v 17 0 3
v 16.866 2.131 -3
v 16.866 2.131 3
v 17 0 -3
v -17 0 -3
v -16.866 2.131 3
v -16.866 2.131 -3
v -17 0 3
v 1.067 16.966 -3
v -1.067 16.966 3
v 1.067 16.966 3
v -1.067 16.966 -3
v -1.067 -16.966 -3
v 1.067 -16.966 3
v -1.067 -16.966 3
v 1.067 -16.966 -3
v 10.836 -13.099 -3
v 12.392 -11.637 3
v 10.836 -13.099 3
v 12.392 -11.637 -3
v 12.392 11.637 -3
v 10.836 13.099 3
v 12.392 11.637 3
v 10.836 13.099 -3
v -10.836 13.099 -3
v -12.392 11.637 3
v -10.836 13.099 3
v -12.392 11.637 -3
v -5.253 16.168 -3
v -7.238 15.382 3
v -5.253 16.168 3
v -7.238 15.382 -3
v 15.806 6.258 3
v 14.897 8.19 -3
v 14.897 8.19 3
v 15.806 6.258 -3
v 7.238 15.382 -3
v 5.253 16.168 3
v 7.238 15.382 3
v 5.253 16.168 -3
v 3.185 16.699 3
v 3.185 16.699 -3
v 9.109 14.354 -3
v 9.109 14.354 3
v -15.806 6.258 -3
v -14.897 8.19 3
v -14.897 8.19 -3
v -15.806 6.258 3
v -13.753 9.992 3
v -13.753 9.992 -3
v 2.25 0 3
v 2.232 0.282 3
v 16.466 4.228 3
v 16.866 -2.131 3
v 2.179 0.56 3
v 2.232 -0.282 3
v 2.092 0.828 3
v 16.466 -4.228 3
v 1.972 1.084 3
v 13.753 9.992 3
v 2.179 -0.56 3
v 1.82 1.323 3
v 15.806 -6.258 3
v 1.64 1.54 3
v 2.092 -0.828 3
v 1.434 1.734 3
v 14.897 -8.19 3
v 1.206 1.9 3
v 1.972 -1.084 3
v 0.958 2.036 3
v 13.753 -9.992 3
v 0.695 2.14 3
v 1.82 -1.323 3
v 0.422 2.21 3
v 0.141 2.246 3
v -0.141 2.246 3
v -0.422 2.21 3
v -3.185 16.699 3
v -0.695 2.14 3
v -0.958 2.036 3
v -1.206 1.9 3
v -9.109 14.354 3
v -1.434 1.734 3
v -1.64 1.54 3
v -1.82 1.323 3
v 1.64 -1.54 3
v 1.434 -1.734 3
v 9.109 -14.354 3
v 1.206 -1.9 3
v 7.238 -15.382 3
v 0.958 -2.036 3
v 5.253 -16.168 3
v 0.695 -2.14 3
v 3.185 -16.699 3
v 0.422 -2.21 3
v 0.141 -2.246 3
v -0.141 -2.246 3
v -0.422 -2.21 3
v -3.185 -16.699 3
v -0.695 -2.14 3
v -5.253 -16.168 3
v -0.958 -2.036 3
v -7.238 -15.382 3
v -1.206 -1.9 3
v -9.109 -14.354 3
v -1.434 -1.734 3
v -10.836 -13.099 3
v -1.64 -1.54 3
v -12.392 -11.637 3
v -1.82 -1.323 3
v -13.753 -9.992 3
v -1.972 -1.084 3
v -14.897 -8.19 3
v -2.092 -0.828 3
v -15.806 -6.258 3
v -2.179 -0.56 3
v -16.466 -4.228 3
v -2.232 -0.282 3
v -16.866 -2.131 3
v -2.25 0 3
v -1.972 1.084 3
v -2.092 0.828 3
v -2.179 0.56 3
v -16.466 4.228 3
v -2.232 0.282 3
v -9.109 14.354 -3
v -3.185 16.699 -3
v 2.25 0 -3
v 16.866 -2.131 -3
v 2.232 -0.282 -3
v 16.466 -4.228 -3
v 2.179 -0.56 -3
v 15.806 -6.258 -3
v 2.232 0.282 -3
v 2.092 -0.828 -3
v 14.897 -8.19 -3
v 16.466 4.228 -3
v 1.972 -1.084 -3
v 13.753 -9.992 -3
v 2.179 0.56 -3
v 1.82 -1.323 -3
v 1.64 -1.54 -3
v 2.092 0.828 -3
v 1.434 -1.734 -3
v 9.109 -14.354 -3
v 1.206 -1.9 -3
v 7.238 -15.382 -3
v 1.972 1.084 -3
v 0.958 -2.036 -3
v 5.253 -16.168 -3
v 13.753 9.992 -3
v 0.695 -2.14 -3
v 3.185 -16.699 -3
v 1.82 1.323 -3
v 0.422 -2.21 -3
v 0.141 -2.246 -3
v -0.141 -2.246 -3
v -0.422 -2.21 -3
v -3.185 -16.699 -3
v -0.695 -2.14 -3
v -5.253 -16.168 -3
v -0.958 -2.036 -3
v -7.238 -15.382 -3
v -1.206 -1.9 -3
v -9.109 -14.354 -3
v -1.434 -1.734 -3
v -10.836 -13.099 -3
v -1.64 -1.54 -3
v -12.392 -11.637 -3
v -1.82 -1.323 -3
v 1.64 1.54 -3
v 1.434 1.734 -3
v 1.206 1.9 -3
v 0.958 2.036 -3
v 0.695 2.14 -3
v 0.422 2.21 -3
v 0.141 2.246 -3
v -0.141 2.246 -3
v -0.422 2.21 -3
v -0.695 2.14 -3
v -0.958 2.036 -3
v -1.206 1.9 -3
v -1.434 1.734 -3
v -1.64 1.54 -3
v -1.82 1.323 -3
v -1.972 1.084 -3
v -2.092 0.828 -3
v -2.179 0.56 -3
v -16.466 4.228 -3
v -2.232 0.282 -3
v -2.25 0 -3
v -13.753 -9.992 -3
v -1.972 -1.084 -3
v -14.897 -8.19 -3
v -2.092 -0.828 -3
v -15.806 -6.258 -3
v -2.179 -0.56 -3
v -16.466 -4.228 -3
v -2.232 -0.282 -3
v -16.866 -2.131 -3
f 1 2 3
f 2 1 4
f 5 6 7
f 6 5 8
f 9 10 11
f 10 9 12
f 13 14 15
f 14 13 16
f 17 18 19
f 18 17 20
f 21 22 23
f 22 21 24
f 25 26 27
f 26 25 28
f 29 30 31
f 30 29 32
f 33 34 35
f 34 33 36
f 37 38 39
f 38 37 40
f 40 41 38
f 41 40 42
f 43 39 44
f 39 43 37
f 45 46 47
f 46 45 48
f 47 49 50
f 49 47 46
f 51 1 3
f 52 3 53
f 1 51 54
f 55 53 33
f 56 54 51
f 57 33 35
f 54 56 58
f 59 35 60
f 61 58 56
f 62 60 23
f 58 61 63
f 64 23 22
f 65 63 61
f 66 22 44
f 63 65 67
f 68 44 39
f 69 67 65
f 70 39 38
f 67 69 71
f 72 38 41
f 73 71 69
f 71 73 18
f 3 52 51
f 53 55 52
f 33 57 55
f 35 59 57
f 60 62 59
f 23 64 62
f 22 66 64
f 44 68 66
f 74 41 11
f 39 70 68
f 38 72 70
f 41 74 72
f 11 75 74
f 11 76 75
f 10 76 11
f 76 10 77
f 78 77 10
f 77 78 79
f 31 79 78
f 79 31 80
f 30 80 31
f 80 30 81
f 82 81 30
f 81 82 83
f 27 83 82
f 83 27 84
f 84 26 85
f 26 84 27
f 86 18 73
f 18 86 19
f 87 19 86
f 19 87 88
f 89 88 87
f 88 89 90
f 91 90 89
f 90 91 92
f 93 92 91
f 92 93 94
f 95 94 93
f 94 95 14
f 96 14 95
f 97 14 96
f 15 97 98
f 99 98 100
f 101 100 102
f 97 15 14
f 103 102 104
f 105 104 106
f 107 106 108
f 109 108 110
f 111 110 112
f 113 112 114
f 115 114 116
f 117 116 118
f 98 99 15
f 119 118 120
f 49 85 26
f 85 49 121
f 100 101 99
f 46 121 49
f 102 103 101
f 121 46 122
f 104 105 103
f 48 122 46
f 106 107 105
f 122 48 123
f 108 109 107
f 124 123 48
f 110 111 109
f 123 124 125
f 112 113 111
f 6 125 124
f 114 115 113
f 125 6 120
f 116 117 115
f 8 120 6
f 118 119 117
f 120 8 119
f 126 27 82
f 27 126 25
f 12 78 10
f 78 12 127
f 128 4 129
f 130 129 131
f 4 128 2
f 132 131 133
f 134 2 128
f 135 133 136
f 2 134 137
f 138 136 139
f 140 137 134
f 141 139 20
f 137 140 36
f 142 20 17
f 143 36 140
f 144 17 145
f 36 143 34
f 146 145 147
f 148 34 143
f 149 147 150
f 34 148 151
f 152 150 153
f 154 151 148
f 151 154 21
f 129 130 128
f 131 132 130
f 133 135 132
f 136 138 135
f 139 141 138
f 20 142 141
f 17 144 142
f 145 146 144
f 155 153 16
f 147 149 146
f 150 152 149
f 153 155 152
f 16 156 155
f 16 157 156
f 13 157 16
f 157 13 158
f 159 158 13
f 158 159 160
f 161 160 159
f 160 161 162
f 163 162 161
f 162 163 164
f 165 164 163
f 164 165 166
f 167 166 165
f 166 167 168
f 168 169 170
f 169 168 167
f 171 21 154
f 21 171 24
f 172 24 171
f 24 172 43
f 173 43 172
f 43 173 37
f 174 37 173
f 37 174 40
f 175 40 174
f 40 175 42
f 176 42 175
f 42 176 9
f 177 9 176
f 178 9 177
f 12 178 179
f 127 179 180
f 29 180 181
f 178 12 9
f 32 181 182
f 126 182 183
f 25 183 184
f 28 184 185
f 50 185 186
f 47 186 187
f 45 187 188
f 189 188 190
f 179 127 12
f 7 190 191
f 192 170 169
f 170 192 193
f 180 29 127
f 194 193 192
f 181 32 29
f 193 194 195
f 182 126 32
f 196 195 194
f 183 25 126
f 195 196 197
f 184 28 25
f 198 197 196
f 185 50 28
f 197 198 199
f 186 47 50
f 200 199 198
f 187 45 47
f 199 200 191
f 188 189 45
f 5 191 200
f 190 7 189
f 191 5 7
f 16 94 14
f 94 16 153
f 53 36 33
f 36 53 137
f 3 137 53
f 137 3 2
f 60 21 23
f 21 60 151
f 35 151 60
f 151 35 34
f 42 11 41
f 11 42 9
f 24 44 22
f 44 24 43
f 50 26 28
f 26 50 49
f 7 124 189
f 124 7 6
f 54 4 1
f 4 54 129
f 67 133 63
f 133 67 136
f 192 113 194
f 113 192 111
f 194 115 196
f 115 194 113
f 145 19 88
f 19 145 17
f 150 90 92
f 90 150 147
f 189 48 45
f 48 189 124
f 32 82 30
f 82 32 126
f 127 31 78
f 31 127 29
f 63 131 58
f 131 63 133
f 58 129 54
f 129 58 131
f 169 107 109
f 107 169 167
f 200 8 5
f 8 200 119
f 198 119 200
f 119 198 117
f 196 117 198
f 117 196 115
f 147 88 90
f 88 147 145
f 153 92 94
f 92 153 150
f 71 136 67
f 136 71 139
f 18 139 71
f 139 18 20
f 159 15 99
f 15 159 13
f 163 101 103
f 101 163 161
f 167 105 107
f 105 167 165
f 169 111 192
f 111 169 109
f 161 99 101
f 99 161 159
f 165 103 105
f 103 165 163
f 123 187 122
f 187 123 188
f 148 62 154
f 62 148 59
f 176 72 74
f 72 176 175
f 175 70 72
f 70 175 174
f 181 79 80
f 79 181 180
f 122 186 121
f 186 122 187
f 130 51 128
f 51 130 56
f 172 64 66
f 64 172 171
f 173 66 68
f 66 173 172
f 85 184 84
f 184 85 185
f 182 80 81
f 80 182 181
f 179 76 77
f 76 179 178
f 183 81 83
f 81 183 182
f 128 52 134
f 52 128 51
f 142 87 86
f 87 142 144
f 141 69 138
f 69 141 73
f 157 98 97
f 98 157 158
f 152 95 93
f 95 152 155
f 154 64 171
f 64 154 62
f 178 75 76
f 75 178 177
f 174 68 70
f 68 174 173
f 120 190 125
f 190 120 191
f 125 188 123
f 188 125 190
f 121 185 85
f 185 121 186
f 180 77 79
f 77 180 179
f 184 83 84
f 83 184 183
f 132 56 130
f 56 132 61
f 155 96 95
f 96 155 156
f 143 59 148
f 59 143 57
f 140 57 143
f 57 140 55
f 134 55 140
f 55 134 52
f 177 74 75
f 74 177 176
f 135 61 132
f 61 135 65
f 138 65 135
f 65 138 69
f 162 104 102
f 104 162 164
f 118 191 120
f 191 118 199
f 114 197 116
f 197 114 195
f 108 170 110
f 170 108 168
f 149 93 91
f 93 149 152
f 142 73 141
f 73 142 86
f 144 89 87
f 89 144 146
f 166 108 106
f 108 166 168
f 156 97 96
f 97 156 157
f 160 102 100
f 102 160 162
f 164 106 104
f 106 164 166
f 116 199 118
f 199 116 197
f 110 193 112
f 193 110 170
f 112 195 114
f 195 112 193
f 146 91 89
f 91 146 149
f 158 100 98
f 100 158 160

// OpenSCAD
$fn = 50;


difference() {
	union() {
		translate(v = [0, 0, -3.0000000000]) {
			cylinder(h = 6, r = 17.0000000000);
		}
	}
	union() {
		translate(v = [0, 0, -100.0000000000]) {
			cylinder(h = 200, r = 2.2500000000);
		}
	}
}
